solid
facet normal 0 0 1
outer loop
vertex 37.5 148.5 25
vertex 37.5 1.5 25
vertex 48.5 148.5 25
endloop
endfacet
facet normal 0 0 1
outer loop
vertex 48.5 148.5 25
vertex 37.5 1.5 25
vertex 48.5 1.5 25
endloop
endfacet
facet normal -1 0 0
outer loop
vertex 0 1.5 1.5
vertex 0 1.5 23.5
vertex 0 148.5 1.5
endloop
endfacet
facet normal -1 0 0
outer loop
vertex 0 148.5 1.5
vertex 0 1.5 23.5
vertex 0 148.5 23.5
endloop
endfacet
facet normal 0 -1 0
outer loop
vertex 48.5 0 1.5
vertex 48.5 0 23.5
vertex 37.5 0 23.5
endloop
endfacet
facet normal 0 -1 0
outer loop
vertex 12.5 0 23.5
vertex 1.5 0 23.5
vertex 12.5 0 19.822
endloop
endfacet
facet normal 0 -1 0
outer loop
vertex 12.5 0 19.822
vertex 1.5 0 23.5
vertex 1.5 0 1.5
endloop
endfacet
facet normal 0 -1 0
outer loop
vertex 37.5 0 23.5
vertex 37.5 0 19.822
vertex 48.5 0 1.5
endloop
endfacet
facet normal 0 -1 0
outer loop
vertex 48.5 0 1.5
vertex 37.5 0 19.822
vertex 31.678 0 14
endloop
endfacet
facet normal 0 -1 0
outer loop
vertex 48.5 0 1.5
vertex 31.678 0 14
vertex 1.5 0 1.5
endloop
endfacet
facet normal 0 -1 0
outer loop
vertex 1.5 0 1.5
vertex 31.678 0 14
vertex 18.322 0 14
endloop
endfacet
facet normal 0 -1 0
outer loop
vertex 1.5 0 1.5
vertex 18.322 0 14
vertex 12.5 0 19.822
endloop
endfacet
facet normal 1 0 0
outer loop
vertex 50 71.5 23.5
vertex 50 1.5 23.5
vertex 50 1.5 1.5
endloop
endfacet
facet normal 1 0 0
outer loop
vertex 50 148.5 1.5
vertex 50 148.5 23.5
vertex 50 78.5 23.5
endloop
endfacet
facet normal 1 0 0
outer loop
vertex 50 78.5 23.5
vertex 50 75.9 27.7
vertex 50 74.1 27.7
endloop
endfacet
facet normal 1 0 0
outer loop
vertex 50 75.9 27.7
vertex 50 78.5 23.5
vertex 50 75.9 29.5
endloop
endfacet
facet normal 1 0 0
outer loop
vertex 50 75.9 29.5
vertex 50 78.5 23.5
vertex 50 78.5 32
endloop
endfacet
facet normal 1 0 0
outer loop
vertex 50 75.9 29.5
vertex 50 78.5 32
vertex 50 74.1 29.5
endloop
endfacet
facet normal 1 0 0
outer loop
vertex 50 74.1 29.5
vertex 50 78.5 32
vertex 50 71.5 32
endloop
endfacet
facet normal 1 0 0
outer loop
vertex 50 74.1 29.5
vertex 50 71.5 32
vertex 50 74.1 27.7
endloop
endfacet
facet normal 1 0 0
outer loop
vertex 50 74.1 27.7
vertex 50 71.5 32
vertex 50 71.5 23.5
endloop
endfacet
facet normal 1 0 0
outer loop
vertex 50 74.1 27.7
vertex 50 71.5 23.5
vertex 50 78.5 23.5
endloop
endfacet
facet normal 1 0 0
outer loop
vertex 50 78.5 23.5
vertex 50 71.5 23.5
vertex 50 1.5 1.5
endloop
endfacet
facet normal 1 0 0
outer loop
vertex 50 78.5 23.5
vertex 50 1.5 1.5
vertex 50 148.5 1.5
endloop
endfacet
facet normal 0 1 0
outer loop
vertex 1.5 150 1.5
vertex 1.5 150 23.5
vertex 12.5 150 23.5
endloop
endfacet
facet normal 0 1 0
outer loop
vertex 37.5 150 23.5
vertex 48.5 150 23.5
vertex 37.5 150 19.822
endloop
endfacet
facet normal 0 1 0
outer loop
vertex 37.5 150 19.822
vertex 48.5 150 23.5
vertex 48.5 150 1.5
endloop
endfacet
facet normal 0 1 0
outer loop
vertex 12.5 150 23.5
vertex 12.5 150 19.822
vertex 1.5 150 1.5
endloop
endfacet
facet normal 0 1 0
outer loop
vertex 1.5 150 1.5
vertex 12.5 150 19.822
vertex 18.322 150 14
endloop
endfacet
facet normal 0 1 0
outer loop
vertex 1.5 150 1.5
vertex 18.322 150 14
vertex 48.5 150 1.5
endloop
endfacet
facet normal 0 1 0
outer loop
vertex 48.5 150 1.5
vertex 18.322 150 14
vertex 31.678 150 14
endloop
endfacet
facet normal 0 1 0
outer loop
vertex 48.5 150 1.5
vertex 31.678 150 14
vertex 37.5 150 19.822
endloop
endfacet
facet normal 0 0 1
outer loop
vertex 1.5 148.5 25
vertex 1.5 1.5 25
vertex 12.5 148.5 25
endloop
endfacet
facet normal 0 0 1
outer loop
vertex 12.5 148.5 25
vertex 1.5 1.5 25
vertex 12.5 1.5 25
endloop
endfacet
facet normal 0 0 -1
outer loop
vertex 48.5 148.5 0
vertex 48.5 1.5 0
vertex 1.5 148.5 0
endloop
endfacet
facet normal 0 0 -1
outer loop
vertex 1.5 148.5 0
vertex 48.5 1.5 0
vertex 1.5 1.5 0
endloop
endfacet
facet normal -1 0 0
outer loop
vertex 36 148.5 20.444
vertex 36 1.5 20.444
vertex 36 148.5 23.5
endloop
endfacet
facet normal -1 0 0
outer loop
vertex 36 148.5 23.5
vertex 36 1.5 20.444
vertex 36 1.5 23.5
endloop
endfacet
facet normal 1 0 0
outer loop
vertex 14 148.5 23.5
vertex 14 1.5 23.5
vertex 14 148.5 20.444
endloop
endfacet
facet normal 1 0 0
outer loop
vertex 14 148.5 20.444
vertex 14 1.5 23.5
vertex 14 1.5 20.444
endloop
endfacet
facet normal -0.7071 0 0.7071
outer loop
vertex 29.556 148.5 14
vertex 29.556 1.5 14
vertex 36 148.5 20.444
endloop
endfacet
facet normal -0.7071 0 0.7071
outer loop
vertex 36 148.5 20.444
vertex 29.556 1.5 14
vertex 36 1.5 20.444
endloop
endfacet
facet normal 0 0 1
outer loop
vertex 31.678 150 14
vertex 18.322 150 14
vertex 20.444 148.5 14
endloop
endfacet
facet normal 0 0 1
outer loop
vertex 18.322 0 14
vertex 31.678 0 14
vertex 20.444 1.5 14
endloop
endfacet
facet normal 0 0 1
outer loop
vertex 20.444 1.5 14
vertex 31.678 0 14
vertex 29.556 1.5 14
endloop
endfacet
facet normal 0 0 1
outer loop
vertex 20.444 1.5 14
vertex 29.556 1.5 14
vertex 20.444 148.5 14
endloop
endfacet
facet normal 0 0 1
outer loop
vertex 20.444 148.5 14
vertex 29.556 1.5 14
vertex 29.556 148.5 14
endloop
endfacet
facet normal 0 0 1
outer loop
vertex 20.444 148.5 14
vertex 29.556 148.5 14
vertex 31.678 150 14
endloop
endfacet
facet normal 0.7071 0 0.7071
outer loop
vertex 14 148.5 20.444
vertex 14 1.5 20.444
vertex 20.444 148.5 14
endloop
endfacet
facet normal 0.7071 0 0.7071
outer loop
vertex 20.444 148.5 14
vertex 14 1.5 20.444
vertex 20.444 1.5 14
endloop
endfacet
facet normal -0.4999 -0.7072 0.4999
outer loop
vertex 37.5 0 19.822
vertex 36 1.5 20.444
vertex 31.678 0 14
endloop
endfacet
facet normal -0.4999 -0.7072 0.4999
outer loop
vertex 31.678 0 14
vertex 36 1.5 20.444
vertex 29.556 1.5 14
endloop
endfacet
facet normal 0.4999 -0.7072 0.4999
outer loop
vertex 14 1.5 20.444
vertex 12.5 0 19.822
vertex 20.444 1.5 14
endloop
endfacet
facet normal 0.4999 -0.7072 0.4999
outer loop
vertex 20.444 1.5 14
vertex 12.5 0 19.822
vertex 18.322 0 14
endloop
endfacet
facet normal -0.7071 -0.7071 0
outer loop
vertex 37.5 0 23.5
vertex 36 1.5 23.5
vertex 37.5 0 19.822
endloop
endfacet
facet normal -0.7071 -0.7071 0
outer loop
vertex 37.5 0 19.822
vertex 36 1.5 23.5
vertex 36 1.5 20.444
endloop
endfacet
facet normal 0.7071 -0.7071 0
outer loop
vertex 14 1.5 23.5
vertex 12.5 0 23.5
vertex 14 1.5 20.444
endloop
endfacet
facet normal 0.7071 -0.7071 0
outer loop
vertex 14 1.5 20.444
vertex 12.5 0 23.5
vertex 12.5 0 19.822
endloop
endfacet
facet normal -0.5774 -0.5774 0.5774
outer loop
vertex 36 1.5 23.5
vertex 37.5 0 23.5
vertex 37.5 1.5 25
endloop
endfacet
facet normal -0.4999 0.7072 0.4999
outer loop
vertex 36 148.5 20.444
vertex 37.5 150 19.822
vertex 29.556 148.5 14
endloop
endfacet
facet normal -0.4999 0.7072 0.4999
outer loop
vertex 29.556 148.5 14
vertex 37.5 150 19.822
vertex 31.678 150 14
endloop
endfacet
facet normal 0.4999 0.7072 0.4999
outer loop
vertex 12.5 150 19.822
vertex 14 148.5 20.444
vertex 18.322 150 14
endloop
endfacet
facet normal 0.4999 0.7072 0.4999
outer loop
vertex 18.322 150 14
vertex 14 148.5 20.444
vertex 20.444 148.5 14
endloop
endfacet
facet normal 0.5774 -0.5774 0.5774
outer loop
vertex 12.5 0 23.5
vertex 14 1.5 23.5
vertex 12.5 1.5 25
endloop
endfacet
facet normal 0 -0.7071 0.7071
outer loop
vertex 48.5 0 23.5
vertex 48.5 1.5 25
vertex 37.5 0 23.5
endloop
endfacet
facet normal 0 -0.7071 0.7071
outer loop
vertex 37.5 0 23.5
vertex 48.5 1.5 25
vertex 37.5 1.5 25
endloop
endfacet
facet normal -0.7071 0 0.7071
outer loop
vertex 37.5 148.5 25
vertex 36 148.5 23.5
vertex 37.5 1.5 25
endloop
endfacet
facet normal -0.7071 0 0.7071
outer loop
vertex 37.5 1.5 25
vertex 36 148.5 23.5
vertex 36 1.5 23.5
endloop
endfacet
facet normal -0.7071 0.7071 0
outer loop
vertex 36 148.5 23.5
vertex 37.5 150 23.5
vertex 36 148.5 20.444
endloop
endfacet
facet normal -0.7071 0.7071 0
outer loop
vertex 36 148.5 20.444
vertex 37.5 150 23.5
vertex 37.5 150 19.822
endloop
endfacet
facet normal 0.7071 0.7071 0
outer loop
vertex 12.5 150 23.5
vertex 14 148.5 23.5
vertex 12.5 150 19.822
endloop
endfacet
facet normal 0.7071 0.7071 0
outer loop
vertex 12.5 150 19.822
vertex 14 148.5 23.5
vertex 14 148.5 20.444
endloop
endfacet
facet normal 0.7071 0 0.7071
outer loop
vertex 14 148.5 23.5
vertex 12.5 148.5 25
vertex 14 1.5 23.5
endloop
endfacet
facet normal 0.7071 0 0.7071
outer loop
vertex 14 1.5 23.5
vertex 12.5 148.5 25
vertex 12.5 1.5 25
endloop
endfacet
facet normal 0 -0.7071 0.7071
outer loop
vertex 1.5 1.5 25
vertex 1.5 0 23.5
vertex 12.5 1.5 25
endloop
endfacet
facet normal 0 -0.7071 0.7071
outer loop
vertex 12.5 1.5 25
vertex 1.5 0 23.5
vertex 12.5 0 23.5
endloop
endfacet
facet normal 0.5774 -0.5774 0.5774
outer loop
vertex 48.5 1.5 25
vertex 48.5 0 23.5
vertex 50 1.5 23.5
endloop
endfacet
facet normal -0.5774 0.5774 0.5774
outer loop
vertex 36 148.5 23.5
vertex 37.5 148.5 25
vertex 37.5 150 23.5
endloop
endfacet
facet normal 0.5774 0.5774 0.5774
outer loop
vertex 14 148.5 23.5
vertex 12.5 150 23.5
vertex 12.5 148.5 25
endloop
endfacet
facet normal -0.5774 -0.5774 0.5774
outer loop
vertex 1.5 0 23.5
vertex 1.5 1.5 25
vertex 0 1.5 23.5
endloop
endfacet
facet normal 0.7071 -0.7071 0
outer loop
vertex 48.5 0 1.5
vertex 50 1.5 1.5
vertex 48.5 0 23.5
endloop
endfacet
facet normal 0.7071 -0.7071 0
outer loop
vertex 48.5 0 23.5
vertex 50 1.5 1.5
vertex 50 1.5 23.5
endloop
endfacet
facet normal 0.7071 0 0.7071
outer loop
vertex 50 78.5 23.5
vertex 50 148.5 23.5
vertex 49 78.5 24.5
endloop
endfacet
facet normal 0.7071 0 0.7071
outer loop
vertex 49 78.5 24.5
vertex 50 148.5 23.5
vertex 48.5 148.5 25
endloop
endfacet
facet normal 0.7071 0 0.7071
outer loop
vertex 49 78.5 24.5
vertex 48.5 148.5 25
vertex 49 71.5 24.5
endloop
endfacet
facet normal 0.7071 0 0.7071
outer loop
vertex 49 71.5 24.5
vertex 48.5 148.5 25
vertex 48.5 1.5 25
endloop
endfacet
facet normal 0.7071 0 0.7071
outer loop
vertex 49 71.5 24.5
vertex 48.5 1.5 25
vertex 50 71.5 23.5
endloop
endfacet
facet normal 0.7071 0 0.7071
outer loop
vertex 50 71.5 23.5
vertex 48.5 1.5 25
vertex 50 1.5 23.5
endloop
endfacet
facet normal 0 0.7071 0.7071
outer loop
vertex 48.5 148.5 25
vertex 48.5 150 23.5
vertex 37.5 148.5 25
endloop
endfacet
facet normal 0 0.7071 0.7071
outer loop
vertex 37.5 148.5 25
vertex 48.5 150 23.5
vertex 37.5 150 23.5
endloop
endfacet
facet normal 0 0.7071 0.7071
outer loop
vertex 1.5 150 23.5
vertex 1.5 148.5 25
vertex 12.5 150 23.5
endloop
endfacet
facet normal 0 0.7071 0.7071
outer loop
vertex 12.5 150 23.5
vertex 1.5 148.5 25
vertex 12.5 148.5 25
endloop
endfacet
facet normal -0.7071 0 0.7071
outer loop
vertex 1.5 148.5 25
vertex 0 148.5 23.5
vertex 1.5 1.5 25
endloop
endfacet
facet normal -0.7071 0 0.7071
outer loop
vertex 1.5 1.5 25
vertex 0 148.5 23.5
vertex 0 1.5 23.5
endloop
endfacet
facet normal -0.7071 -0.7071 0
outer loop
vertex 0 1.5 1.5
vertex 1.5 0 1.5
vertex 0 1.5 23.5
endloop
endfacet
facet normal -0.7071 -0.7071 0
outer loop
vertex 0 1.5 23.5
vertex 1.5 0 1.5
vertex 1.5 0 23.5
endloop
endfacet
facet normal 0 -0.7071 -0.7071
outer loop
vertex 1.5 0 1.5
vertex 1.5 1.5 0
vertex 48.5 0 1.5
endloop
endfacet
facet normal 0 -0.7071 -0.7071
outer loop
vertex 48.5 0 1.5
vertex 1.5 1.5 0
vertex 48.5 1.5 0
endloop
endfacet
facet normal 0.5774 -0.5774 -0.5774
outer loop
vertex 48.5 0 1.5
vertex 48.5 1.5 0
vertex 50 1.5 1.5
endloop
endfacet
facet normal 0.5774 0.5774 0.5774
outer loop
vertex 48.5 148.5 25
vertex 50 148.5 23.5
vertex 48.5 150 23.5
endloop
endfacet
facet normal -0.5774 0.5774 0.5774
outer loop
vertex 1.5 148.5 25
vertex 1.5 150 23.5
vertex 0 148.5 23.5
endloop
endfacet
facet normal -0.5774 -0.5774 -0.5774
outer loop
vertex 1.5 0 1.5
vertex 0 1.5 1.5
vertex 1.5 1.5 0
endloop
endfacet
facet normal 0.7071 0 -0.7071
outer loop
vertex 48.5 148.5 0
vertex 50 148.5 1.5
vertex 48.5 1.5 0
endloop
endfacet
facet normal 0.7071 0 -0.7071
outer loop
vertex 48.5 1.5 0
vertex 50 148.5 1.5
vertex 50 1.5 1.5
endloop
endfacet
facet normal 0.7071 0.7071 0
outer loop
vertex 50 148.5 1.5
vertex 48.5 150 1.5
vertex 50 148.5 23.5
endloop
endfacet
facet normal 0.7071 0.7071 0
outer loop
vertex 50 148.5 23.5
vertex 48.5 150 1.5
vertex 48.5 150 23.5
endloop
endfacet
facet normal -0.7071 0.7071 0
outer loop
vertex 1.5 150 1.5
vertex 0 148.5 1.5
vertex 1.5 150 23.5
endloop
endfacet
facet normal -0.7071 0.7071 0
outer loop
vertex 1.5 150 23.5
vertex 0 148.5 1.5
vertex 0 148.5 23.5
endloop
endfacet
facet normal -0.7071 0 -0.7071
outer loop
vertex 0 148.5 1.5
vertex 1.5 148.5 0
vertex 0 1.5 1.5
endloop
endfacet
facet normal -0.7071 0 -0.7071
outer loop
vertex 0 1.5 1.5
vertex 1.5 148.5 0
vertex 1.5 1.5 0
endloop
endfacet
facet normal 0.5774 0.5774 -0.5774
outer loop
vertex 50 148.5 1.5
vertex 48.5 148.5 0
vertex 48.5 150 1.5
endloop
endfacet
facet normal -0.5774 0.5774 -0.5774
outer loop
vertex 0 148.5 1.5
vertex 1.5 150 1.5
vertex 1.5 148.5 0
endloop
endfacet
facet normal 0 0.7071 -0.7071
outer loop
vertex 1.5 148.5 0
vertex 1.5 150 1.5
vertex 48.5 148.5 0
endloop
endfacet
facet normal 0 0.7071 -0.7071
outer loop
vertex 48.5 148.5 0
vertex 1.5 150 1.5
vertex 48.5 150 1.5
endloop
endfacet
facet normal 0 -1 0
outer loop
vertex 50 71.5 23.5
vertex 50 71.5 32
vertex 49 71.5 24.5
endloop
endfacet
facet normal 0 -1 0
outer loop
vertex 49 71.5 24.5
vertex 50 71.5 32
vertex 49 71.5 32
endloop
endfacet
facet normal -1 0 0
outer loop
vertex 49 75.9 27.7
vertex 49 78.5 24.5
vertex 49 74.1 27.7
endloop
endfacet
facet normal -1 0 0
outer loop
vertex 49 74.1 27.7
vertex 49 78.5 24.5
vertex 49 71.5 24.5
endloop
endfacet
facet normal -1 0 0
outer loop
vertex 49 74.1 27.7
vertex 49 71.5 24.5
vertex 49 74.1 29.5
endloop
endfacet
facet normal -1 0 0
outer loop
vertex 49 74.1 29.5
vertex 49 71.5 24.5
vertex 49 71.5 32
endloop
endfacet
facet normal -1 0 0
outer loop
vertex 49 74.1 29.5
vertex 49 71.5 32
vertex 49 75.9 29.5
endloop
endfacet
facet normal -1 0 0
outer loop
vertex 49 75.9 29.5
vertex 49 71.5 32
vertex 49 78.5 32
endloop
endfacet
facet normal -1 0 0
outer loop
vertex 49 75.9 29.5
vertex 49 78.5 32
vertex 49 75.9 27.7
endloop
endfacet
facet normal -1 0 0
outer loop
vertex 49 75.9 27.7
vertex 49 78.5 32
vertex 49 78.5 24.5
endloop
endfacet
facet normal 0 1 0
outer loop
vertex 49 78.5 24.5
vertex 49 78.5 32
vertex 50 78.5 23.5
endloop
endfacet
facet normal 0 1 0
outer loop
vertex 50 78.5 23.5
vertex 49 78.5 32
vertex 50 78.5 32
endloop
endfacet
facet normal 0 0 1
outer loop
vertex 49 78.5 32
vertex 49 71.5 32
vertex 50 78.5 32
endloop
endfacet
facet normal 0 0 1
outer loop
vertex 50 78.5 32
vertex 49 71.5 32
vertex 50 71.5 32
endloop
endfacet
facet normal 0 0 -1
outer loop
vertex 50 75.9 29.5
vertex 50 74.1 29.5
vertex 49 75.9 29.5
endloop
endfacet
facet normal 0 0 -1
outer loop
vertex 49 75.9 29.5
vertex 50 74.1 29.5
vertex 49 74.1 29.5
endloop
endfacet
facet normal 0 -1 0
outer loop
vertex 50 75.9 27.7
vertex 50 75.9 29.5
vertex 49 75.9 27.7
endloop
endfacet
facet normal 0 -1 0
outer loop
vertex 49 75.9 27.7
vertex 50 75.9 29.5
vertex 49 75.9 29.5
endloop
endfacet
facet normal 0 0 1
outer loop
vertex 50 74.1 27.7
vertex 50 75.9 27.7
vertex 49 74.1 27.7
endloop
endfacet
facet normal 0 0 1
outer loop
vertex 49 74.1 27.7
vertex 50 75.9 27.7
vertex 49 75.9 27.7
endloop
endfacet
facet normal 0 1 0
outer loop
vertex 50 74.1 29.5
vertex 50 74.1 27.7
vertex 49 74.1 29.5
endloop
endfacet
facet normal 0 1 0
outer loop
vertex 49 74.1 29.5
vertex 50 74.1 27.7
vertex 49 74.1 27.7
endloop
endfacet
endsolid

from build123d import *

# Parameters (mm, degrees)
SKETCH1_W                = 50
SKETCH1_H                = 150
BOSS_EXTRUDE1_DEPTH      = 25
CUT_EXTRUDE1_DEPTH       = 161.078105936
CHAMFER1_SIZE            = 1.5
BOSS_EXTRUDE2_DEPTH      = 7
BOSS_EXTRUDE2_DEPTH_BACK = 10
SKETCH3_W                = 1
SKETCH3_H                = 7
SKETCH4_W                = 1.8
SKETCH4_H                = 1.8
CUT_EXTRUDE2_DEPTH       = 7


with BuildPart() as part:
    # Sketch1 → Boss-Extrude1 (new body)
    with BuildSketch(Plane.XY):
        with Locations((25, 75)):
            Rectangle(SKETCH1_W, SKETCH1_H)
    extrude(amount=BOSS_EXTRUDE1_DEPTH)

    # Sketch2 → Cut-Extrude1 (cut, through all)
    with BuildSketch(Plane.XZ):
        Polygon((29.556349186, 36), (20.443650814, 36), (14, 29.556349186), (14, 20.443650814), (20.443650814, 14), (29.556349186, 14), (36, 20.443650814), (36, 29.556349186), align=None)
    extrude(amount=-CUT_EXTRUDE1_DEPTH, mode=Mode.SUBTRACT)

    # Chamfer1
    chamfer1_edges = [part.edges().sort_by_distance(p)[0] for p in [
        (50, 75, 25),
        (43, 150, 25),
        (43, 0, 25),
        (7, 150, 25),
        (14, 75, 25),
        (36, 75, 25),
        (36, 150, 22.721825407),
        (14, 150, 22.721825407),
        (36, 0, 22.721825407),
        (14, 0, 22.721825407),
        (17.221825407, 0, 17.221825407),
        (32.778174593, 0, 17.221825407),
        (32.778174593, 150, 17.221825407),
        (17.221825407, 150, 17.221825407),
        (0, 75, 25),
        (25, 150, 0),
        (50, 75, 0),
        (25, 0, 0),
        (0, 75, 0),
        (7, 0, 25),
        (0, 150, 12.5),
        (50, 150, 12.5),
        (50, 0, 12.5),
        (0, 0, 12.5),
    ]]
    chamfer(chamfer1_edges, length=CHAMFER1_SIZE)

    # Sketch3 → Boss-Extrude2 (add, two sides: drawn at the far end of the back side and taken through both)
    with BuildSketch(Plane.XY.offset(25).offset(-BOSS_EXTRUDE2_DEPTH_BACK)):
        with Locations((49.5, 75)):
            Rectangle(SKETCH3_W, SKETCH3_H)
    extrude(amount=BOSS_EXTRUDE2_DEPTH + BOSS_EXTRUDE2_DEPTH_BACK)

    # Sketch4 → Cut-Extrude2 (cut)
    with BuildSketch(Plane(origin=(50, 0, 0), x_dir=(0, 0, -1), z_dir=(1, 0, 0))):
        with Locations((-28.6, 75)):
            Rectangle(SKETCH4_W, SKETCH4_H)
    extrude(amount=-CUT_EXTRUDE2_DEPTH, mode=Mode.SUBTRACT)


solid = part.part
